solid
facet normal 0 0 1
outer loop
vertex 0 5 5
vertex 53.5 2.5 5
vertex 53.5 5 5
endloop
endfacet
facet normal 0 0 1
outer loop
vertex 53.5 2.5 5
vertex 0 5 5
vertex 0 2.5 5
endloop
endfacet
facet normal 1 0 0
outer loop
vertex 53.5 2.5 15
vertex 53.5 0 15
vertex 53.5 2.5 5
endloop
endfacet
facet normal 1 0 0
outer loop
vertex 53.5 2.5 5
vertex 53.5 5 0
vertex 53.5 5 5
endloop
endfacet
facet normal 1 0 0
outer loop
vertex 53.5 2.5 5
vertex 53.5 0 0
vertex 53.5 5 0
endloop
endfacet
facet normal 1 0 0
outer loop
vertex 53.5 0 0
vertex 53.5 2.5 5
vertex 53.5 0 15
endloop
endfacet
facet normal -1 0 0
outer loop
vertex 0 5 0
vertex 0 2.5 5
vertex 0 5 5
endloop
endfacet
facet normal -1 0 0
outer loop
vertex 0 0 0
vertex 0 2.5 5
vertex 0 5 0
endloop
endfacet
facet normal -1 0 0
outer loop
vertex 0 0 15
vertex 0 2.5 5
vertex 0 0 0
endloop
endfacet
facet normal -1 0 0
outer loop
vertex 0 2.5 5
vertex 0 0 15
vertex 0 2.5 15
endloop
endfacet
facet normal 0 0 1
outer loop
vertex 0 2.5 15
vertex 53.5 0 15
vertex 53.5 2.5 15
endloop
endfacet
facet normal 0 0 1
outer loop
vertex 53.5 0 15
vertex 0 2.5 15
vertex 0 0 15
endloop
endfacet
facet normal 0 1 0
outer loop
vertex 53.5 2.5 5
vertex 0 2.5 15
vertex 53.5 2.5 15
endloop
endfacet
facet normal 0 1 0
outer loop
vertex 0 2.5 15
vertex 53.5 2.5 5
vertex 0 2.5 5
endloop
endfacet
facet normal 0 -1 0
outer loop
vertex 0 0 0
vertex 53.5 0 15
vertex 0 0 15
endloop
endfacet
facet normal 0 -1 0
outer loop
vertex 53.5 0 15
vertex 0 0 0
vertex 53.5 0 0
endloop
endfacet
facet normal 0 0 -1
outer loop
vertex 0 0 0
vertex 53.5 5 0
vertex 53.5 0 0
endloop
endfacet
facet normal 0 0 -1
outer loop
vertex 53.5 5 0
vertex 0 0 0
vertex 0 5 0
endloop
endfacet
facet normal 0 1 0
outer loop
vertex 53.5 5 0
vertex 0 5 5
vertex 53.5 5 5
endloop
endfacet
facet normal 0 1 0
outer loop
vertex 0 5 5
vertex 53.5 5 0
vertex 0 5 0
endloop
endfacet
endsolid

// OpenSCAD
// Generated by SolidPython 0.4.6 on 2020-04-04 13:21:45


translate(v = [0, 0, 15.0000000000]) {
	rotate(a = [0, 90, 0]) {
		union() {
			cube(size = [10.0000000000, 2.5000000000, 53.5000000000]);
			translate(v = [10.0000000000, 0, 0]) {
				cube(size = [5.0000000000, 5.0000000000, 53.5000000000]);
			}
		}
	}
}
/***********************************************
*********      SolidPython code:      **********
************************************************
 
import solid as s
import solid.utils as u
import math

def render(suffix, final):
    suffix += ".scad"
    s.scad_render_to_file(final, __file__.replace(".py", suffix))

wire_dia = 2.4
wire_rad = wire_dia / 2.0
wire_height = 6.0
cheek_len = 220.0
cheek_height = 7.0
cheek_depth = 4.0

ear_height = 60.0
ear_length = 10.0
ear_depth = 10.0
fabric_height = 160.0
fabric_thick = 0.5
slot_edge = 3.0
slot_height = ear_height - slot_edge - slot_edge
slot = 3.0
wedge = slot - fabric_thick
wedge_height = slot_height - fabric_thick
wedge_stop = 5.0
lug_hole = 5.0

# earpiece
e = s.cube(size=[ear_length, ear_depth, ear_height])

# earpiece slot
e -= u.up(slot_edge)(
    u.forward((ear_depth / 2.0) - (slot / 2.0))(
        s.cube(size=[ear_length, slot, slot_height])
    )
)
# earpiece lugs
lug = s.cylinder(d=ear_depth, h=ear_length, segments=128)
lug -= s.cylinder(d=lug_hole, h=ear_length, segments=128)
lug -= u.back(ear_depth / 2.0)(
    s.cube(size=[ear_length, ear_depth, ear_length])
)
e += u.up(ear_height)(u.forward(ear_depth / 2.0)(
        u.rotate(a=[0,90,0])(lug)
    )
)
e += u.forward(ear_depth / 2.0)(
    u.right(ear_length)(
        u.rotate(a=[0,-90,0])(lug)
    )
)

# wedge
w = s.cube(size=[ear_length, wedge, wedge_height])
w += u.right(ear_length)(
    s.cube(size=[wedge_stop, wedge_stop, wedge_height])
)

# cheek wire surround
c = s.cube(size=[cheek_len, cheek_depth, cheek_height])
c -= u.forward((cheek_depth / 2.0) - (fabric_thick / 2.0))(
    s.cube(size=[cheek_len, fabric_thick, wire_height])
)
c += u.forward(cheek_depth / 2.0)(
    u.up(cheek_height)(
        u.rotate(a=[0,90,0])(
            s.cylinder(d=cheek_depth, h=cheek_len, segments=128)
        )
    )
)
c -= u.forward(cheek_depth / 2.0)(
    u.up(wire_height)(
        u.rotate(a=[0,90,0])(
            s.cylinder(d=wire_dia, h=cheek_len, segments=128)
        )
    )
)

final = u.left(ear_length)(e) + \
    u.left(ear_length + wedge_stop)(u.back(6.0)(w)) + \
    u.left(cheek_depth)(u.back(14.0)(c))

render('', s.rotate(a=[0, 90, 0])(final))
render('ear', s.rotate(a=[0, -90, 0])(e))
render('wedge', u.up(ear_length + wedge_stop)(s.rotate(a=[0, 90, 0])(w)))
render('cheek', s.rotate(a=[0, 0, 30])(c))
# s.scad_render_to_file(final, __file__.replace('.py', '.scad'))
 
 
************************************************/
